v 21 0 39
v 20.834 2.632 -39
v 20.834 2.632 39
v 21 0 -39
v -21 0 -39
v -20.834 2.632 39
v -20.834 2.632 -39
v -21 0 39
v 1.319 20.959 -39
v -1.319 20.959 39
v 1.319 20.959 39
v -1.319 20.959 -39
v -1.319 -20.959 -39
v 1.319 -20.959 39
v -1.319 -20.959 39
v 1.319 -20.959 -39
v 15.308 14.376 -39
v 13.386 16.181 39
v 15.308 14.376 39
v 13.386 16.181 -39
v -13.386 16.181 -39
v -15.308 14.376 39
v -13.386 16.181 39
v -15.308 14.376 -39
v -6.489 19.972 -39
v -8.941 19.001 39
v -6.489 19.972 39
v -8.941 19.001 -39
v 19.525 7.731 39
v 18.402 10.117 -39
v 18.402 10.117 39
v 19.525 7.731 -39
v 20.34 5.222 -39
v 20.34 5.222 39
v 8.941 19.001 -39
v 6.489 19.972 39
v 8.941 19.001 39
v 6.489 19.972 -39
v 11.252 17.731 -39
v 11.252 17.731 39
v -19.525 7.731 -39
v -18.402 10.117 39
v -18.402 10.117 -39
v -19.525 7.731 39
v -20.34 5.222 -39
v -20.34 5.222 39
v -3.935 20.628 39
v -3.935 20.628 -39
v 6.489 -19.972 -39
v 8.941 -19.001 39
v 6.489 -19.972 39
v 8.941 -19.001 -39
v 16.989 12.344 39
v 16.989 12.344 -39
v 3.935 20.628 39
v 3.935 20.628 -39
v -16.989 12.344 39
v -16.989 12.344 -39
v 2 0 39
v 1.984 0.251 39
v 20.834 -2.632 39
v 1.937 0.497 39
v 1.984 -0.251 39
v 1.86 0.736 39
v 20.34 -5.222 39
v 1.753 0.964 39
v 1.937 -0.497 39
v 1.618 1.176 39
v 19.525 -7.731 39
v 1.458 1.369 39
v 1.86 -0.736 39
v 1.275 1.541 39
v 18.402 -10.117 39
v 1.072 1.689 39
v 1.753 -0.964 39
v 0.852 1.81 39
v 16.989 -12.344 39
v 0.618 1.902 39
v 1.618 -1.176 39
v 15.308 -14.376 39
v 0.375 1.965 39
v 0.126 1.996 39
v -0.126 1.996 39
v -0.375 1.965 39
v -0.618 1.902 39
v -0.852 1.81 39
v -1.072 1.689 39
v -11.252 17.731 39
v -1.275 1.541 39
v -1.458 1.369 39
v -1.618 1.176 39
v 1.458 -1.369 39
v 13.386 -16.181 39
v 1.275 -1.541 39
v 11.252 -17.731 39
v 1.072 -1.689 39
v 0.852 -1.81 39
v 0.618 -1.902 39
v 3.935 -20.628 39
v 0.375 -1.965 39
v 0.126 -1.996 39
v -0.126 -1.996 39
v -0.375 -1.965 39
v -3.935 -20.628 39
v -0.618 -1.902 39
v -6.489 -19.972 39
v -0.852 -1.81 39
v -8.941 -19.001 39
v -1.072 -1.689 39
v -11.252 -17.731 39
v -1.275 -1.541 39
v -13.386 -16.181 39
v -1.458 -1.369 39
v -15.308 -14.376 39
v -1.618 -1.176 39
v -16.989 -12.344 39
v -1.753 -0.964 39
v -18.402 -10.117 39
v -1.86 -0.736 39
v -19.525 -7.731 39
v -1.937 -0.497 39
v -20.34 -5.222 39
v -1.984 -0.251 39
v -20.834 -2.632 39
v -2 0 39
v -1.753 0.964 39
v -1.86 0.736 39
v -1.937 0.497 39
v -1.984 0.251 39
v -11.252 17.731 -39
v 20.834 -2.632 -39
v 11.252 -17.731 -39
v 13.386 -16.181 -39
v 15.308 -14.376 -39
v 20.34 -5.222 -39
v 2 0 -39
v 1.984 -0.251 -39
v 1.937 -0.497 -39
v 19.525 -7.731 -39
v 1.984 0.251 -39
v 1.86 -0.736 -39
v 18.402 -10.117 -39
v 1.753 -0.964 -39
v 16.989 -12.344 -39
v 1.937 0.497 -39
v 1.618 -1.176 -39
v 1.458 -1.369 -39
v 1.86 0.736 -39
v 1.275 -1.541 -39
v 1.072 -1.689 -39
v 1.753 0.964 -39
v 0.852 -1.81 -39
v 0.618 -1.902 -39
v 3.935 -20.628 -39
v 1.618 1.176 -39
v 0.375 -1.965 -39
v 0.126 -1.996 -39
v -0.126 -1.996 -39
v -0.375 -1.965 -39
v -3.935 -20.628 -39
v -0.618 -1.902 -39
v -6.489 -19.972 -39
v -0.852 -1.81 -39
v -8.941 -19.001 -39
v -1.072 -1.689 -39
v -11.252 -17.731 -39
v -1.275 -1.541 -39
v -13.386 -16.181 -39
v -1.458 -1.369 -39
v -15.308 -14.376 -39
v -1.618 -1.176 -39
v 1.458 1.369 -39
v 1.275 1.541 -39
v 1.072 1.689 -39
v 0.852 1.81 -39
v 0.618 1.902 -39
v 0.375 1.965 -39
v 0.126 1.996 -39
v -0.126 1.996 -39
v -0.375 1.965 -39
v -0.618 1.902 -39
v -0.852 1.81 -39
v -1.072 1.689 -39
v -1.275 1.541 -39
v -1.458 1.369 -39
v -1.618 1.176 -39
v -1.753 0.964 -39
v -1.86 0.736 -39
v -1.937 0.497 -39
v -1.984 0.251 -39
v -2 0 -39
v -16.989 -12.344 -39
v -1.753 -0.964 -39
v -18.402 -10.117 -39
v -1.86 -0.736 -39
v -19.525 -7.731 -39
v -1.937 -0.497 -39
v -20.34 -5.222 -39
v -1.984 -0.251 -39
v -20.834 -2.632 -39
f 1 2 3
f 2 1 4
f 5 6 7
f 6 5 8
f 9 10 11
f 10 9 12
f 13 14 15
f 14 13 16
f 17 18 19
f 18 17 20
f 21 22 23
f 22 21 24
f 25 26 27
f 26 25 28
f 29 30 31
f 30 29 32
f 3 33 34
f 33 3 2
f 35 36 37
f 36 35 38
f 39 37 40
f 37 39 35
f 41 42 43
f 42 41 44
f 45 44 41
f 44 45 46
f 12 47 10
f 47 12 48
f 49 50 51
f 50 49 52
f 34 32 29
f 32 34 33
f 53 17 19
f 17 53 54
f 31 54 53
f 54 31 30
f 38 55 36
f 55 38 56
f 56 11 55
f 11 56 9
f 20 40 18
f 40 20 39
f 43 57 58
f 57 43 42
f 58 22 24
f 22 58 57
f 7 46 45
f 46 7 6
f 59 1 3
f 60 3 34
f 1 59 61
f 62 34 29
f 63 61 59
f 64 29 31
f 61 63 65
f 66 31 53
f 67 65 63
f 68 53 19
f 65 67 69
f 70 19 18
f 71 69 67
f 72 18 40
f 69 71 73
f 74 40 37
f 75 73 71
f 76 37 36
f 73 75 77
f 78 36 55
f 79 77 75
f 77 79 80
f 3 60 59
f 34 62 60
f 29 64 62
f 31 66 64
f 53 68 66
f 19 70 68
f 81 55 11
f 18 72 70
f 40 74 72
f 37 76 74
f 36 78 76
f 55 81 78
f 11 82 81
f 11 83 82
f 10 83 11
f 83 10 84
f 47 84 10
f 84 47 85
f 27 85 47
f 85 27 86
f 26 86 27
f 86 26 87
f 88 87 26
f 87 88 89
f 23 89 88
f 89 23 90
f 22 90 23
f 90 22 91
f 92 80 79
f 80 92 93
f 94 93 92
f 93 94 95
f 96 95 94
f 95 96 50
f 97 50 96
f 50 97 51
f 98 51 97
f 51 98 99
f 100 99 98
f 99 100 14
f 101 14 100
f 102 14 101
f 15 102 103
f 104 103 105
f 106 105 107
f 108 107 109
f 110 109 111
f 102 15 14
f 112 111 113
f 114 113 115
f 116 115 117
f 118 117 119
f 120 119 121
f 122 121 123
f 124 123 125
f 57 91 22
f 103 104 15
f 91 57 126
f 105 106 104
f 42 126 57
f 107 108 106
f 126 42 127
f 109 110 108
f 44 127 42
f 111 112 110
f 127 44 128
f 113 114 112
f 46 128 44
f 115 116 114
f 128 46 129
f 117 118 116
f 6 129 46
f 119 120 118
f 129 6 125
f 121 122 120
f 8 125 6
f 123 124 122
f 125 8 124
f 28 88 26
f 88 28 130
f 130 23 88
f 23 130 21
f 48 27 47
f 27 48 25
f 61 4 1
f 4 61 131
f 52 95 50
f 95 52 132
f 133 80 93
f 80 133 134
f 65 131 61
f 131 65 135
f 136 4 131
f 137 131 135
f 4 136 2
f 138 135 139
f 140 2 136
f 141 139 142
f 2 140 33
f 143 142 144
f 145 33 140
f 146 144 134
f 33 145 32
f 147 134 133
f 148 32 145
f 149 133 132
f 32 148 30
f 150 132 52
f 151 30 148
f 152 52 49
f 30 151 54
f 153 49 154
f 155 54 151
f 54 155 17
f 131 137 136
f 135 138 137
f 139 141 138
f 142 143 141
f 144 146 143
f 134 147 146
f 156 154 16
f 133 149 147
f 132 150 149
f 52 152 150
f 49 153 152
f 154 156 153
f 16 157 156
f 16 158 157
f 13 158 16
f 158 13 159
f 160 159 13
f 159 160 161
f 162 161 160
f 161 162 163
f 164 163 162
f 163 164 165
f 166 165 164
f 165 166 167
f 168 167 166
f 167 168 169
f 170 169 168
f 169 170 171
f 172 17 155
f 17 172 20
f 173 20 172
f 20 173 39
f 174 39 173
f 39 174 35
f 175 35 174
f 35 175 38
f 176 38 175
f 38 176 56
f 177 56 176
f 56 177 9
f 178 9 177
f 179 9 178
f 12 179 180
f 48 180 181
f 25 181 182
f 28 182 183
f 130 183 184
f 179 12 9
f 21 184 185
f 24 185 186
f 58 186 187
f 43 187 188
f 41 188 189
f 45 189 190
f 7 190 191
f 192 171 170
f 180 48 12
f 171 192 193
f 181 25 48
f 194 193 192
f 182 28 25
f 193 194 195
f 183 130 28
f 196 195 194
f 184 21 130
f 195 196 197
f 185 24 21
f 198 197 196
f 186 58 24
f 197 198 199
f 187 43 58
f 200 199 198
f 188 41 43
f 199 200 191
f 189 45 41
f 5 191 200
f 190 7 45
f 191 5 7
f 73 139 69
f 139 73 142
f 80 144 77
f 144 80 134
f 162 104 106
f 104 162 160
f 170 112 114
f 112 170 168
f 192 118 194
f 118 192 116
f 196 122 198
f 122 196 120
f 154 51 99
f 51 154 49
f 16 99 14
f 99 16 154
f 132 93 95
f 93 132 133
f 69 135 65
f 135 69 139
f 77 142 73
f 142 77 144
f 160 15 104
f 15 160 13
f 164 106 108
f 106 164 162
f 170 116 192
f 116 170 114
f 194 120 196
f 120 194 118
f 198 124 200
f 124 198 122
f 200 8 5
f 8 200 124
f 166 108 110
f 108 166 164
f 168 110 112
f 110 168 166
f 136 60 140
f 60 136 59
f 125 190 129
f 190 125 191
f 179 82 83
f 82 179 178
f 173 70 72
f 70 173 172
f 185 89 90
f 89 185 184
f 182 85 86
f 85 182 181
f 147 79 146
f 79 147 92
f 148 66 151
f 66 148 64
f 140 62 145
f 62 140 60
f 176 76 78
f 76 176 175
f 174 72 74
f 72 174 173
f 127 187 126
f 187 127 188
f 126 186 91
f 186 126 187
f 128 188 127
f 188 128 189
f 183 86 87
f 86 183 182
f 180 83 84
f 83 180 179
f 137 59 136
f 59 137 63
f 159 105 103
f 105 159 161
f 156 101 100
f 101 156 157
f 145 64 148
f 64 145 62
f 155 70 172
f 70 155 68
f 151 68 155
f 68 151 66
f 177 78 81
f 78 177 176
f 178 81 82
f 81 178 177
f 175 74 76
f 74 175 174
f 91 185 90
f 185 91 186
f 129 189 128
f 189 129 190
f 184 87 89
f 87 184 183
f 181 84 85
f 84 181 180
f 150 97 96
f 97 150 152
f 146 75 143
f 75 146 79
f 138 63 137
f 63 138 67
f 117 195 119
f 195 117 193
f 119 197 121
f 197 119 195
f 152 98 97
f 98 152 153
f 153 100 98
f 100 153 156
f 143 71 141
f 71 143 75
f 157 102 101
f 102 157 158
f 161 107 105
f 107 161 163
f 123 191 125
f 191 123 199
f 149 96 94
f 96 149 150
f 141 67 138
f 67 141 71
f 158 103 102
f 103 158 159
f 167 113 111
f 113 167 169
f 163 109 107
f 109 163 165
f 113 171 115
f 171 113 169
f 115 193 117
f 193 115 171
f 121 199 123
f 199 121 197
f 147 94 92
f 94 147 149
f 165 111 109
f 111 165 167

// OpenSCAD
$fn = 50;


difference() {
	union() {
		translate(v = [0, 0, -39.0000000000]) {
			cylinder(h = 78, r = 21.0000000000);
		}
	}
	union() {
		translate(v = [0, 0, -100.0000000000]) {
			cylinder(h = 200, r = 2);
		}
	}
}
